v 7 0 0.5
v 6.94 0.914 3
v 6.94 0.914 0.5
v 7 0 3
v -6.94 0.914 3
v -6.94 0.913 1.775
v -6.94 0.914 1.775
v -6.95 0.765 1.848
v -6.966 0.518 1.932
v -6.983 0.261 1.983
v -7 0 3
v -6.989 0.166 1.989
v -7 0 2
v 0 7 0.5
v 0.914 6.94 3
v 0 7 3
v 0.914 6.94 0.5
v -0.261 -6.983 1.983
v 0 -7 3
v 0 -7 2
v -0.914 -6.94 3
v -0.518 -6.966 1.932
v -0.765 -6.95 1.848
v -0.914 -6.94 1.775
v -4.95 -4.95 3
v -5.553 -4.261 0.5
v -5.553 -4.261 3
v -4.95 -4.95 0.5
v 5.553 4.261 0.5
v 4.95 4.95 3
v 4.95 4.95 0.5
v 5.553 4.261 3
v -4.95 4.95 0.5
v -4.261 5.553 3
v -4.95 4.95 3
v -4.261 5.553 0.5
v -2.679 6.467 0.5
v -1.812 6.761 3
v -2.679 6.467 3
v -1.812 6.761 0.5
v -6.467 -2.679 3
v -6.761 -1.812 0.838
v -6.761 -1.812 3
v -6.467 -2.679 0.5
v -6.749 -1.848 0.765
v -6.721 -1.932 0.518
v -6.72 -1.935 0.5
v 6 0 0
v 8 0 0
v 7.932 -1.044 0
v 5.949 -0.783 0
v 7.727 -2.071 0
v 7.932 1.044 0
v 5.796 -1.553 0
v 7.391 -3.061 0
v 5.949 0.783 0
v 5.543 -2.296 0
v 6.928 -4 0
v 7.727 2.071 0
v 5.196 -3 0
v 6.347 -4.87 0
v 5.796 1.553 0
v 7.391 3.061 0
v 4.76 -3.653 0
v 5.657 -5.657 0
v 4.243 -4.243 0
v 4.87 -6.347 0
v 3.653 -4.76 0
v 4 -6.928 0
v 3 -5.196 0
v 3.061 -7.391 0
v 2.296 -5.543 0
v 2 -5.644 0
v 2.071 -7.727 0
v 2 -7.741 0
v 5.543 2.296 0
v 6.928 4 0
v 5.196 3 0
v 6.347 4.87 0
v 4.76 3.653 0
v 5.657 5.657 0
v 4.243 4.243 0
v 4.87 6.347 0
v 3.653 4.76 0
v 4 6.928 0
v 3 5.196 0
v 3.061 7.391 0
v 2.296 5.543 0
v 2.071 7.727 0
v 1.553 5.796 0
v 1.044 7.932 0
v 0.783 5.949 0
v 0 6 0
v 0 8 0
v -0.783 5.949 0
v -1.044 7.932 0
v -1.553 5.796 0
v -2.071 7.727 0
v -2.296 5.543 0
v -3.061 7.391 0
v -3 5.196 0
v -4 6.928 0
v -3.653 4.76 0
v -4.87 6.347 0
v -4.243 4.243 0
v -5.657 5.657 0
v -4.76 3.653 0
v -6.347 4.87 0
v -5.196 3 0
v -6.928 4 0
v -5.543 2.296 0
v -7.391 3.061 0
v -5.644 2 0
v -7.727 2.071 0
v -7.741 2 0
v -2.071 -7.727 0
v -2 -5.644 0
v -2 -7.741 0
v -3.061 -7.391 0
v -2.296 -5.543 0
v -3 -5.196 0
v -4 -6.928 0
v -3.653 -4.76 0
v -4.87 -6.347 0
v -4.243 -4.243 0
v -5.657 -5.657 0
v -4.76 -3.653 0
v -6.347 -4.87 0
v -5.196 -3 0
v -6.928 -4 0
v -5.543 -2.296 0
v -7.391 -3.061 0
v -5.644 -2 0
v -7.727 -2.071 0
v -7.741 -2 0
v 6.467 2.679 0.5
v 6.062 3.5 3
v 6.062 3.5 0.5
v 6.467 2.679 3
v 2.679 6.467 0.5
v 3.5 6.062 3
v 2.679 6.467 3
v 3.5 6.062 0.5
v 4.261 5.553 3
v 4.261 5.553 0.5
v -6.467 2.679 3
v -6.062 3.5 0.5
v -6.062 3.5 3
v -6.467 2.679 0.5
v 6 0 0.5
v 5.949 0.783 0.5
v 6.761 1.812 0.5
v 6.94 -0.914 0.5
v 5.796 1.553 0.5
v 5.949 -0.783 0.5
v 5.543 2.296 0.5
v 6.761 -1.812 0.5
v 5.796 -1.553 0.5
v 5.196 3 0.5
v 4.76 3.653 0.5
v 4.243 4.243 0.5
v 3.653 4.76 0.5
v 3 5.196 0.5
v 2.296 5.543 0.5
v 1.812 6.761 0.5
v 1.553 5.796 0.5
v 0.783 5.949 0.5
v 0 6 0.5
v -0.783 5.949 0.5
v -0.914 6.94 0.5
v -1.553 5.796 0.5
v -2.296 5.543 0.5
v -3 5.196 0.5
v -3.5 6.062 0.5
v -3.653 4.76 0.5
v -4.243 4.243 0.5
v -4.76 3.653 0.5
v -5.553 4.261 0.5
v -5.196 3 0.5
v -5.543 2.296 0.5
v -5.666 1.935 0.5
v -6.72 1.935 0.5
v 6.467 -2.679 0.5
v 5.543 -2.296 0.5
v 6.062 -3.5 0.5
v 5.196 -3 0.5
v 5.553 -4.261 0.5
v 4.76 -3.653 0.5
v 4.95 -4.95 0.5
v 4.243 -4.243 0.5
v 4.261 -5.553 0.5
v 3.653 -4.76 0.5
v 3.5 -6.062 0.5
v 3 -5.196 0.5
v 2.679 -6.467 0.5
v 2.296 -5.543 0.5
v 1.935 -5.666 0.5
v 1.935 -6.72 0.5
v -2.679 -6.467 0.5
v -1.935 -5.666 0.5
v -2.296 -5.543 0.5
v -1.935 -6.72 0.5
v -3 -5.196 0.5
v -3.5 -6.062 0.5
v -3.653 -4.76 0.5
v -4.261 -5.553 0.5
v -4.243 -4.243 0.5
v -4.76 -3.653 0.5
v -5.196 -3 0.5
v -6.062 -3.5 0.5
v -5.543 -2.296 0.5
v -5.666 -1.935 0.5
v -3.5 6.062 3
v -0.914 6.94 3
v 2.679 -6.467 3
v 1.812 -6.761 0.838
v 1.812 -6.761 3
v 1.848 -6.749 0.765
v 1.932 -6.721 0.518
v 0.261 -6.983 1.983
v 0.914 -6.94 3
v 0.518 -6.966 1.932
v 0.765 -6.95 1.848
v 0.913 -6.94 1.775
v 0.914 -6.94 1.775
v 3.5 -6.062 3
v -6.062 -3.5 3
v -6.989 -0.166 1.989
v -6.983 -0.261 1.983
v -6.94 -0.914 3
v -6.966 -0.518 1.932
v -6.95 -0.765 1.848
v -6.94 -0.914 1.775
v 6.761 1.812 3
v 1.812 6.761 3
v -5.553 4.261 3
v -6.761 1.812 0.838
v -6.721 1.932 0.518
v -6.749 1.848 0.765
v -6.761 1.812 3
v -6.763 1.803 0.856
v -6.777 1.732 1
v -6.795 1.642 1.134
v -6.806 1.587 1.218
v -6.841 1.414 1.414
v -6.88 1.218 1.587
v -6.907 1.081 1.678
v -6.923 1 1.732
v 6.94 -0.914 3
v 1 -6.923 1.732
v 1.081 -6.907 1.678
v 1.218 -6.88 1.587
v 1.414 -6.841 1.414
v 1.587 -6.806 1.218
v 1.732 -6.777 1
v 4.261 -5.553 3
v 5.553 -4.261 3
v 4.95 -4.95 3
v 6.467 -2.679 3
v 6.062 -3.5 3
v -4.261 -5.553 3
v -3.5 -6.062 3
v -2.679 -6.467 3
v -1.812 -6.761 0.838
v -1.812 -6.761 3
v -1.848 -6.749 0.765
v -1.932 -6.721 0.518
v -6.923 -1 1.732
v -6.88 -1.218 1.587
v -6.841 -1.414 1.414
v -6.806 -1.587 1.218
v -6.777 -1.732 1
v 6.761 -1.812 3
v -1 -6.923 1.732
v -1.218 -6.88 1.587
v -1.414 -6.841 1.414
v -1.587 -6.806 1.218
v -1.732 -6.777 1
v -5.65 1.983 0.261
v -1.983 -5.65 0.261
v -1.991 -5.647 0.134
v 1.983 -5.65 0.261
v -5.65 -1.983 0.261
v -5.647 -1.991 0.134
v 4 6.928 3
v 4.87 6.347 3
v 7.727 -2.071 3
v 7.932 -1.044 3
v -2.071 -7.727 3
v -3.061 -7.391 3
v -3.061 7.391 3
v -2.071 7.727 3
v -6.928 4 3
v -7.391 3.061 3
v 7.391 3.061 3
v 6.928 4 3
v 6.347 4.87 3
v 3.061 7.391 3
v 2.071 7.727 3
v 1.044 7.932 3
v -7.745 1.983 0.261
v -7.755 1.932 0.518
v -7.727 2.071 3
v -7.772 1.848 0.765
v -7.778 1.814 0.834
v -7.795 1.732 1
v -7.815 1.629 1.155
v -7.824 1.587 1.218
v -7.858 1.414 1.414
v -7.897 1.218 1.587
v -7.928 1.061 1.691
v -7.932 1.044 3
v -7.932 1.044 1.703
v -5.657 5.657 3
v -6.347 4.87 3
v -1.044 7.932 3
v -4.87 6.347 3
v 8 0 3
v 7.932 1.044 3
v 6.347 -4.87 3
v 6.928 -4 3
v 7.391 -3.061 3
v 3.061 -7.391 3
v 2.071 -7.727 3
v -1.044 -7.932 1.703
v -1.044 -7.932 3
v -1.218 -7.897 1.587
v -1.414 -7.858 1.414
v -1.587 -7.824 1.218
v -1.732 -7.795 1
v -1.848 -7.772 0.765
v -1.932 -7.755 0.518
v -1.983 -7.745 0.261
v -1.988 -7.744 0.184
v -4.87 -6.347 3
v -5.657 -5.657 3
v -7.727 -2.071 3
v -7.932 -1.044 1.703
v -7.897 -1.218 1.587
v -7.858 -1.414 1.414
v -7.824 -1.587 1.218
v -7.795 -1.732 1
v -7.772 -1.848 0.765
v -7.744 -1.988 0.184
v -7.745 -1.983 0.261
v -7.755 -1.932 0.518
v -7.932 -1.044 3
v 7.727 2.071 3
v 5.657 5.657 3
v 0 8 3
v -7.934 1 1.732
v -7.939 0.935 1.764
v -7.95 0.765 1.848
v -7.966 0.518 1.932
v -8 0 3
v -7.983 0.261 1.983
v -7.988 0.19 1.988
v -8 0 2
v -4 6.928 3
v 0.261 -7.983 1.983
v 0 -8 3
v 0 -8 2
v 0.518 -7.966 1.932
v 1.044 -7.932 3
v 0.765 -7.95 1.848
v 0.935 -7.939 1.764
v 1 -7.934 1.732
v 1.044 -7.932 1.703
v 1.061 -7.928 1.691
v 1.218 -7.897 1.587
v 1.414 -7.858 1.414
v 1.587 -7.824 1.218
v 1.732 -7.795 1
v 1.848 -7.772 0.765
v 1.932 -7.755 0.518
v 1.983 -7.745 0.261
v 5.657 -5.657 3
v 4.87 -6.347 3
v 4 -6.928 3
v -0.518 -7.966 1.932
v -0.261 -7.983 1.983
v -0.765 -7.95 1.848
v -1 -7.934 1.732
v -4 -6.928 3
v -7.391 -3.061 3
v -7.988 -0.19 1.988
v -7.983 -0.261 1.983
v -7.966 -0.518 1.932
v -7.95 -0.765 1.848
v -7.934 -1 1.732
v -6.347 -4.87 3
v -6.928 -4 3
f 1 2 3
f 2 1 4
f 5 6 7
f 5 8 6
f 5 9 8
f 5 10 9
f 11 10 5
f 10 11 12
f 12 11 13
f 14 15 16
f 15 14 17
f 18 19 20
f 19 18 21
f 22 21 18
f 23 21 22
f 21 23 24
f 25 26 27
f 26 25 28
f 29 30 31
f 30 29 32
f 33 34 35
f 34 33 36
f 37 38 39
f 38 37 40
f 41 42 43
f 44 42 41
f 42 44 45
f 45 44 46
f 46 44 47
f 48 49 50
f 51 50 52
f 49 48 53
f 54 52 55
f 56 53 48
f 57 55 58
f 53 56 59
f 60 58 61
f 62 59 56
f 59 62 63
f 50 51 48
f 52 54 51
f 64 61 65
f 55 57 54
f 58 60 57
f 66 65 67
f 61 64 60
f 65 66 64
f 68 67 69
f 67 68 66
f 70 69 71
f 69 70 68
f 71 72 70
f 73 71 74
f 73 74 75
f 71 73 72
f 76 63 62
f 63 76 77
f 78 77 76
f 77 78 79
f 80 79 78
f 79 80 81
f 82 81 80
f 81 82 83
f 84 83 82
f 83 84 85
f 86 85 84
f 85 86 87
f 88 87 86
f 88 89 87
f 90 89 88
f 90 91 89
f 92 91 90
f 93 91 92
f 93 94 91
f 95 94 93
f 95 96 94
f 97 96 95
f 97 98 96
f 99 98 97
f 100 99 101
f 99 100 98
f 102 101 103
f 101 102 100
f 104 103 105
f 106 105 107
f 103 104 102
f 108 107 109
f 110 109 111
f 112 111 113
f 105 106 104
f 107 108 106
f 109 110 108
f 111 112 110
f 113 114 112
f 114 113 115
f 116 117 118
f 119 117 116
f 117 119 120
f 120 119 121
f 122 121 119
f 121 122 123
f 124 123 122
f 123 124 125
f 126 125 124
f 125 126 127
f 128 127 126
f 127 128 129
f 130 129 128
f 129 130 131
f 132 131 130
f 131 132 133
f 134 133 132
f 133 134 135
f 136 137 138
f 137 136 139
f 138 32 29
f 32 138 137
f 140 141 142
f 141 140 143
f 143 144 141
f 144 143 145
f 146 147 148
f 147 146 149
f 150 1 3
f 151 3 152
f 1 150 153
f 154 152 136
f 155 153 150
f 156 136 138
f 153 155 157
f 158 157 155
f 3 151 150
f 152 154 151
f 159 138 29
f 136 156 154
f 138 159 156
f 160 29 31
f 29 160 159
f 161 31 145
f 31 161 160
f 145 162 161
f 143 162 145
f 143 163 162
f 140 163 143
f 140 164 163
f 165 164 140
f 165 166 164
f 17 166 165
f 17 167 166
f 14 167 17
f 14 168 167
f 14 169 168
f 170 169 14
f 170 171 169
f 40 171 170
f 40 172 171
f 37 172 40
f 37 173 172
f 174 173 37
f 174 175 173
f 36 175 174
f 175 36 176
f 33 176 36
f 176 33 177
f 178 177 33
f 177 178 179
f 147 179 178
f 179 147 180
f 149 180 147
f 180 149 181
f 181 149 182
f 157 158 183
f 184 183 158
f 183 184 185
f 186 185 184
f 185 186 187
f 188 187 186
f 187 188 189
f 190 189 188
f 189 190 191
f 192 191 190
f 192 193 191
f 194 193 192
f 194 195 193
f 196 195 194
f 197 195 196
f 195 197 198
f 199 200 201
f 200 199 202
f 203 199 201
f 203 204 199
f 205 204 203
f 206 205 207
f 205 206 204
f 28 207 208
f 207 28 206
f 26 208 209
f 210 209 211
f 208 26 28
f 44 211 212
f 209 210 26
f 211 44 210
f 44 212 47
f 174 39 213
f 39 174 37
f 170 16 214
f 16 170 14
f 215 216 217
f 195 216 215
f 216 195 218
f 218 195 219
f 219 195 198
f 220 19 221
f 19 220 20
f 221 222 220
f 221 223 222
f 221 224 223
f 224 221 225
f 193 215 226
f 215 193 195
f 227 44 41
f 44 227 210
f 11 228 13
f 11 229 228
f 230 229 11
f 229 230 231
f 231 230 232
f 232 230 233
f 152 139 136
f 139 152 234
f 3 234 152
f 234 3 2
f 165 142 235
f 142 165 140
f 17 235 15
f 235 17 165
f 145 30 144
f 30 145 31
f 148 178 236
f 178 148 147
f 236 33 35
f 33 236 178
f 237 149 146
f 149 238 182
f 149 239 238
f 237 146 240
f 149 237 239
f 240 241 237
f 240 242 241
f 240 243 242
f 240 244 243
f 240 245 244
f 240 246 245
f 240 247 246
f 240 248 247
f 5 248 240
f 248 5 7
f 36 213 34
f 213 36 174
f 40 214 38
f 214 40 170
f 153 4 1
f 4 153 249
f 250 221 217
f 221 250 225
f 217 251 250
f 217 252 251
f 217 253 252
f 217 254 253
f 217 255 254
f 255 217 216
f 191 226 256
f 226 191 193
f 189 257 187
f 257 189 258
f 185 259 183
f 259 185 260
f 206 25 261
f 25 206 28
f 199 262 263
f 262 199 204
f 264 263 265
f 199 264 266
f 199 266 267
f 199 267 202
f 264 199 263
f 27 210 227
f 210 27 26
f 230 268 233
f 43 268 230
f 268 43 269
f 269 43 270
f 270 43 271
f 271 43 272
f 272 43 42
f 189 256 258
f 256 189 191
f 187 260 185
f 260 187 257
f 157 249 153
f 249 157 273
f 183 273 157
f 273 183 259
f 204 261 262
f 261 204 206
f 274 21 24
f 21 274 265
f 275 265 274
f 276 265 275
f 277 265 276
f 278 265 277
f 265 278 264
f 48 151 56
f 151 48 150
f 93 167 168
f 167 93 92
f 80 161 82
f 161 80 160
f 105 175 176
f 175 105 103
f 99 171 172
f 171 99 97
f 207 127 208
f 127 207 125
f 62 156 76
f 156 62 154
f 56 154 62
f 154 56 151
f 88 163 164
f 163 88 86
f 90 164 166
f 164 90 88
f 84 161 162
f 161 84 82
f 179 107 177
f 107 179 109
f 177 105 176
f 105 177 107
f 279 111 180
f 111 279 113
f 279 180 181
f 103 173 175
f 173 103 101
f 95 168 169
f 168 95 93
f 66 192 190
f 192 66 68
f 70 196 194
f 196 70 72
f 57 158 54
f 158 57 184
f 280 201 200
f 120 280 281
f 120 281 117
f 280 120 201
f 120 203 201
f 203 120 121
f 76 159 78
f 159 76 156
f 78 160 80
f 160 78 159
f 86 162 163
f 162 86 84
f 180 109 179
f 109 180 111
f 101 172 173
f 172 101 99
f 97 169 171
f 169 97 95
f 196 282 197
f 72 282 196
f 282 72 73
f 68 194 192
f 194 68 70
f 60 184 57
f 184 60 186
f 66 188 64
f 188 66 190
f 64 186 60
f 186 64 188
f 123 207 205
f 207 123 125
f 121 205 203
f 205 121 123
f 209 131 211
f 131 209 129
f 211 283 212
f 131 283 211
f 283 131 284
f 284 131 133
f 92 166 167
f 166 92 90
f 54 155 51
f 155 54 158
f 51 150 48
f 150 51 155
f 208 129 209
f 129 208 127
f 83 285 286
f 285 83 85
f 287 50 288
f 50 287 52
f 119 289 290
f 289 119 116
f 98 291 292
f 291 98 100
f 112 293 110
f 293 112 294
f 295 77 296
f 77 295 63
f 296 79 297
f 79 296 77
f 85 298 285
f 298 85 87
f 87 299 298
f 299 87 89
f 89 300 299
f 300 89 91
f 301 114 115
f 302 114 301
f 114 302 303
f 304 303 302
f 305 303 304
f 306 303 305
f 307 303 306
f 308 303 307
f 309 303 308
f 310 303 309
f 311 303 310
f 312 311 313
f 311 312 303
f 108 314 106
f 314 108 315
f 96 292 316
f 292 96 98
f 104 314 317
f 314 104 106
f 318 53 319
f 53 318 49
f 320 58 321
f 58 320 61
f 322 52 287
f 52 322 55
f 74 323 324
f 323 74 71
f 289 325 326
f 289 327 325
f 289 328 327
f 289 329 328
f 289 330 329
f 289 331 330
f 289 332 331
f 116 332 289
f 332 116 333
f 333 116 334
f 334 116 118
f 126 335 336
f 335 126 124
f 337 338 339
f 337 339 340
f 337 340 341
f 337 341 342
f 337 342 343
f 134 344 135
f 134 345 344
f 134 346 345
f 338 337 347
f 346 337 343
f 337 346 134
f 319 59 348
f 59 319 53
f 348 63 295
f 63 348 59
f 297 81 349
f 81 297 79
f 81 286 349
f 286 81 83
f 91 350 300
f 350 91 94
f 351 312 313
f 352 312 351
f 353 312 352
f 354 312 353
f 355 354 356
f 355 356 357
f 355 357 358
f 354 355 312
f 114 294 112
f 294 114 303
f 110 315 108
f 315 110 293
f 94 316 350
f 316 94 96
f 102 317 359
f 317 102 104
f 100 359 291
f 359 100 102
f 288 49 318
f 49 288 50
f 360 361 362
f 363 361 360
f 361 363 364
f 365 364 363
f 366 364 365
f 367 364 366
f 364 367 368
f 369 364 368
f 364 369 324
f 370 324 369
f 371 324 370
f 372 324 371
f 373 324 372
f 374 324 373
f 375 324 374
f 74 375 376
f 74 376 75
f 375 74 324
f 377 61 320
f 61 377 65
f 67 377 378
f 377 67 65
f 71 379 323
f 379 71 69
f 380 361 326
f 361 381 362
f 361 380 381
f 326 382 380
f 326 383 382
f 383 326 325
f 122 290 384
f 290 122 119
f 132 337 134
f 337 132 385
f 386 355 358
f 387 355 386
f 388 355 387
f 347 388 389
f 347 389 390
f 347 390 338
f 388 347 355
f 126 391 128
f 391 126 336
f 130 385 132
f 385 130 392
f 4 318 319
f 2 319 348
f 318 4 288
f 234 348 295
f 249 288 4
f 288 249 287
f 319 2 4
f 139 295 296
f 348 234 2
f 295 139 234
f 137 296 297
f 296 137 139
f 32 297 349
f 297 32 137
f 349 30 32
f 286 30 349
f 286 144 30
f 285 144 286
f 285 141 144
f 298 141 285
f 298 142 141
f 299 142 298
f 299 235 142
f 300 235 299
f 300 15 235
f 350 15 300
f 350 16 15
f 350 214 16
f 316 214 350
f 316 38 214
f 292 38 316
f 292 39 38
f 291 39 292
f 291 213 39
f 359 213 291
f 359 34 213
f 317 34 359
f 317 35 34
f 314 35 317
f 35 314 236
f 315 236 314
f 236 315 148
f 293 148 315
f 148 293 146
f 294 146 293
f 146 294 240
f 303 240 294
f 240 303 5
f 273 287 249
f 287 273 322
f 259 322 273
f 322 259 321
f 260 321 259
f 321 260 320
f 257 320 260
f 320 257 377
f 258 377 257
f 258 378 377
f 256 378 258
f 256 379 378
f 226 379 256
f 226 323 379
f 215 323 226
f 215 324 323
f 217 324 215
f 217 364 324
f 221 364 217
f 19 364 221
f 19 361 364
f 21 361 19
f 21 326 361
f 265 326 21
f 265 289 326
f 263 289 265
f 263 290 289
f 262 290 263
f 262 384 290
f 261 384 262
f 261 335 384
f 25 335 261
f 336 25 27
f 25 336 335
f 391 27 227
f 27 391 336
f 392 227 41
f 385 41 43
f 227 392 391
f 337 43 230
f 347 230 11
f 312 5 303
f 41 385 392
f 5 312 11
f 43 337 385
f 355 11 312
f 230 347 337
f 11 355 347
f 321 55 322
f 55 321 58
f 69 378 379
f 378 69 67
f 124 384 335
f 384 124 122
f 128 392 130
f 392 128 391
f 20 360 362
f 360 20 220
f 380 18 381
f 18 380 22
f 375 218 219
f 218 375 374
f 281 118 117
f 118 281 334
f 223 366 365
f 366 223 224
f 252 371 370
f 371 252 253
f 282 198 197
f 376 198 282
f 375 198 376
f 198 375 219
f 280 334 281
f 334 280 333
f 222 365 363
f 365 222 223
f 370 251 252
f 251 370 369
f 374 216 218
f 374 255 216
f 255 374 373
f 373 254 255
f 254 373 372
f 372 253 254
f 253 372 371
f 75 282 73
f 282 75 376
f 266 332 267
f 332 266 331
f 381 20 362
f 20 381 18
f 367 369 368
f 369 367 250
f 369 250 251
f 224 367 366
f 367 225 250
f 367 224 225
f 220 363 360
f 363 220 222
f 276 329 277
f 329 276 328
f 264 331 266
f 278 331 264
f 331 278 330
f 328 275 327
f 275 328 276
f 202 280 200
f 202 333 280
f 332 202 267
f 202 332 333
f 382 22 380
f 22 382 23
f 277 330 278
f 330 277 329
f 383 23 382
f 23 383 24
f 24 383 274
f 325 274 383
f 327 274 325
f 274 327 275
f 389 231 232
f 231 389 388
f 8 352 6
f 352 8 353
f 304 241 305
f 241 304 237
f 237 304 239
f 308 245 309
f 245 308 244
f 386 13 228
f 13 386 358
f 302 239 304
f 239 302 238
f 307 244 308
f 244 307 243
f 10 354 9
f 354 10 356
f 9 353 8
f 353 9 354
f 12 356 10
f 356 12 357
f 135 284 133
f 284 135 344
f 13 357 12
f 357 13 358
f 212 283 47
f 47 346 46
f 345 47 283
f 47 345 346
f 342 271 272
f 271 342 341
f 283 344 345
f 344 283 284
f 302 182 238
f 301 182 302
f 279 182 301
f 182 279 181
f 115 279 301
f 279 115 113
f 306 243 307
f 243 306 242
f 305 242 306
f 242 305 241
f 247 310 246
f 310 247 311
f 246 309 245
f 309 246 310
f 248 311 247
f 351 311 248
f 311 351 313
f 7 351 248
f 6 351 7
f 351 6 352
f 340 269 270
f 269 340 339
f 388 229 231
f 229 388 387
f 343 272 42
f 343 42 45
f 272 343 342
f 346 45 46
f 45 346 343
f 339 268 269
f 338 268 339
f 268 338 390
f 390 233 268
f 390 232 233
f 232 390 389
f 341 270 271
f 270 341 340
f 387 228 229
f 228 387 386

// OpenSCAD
// file: ../build_environments.scad
// build_environments.scad: modules to build level sections
//

module pool(diameter=10.0, wall_height=2.0, step_width=3.0, connections=[])
{
    difference() {
        union() {
        difference() {
            cylinder(h=0.5,r1=diameter+step_width,r2=diameter+step_width,$fn=48);
            translate([0,0,-0.1])
                cylinder(h=0.7,r1=diameter,r2=diameter,$fn=48);
        }
        difference() {
            cylinder(h=wall_height,r1=diameter+step_width+1.0,r2=diameter+step_width+1.0,$fn=48);
            translate([0,0,-0.1])
                cylinder(h=wall_height+0.2,r1=diameter+step_width,r2=diameter+step_width,$fn=48);
        }
        }
    
        for (c = connections)
        {
            rotate([0,90,0]) {
                angle = atan2(c[1],c[0]);
                rotate([-angle,0,0]) {
                    cylinder(h=diameter+5.0,r1=c[2],r2=c[2],$fn=48);
                }
            }
        }
    }
}

module straight(length=10.0, width=2.0, dy1=0.0, dy2=0.0, dz=0.0)
{
    dims = [0, 0, 0, 0, 0, (dz/length)];
    matrix = [
        [ 1, dims[0], dims[1], 0 ],
        [ dims[2], 1, dims[4], 0 ],
        [ dims[5], dims[3], 1, 0 ],
        [ 0, 0, 0, 1 ]
    ];
    multmatrix(matrix)
    difference() {
        translate([dy1,0,0])
        union() {
            rotate([0,90,0]) {
                difference() {
                    cylinder(h=(length-dy1-dy2),r1=width+1.0,r2=width+1.0,$fn=24);
                    translate([0,0,-0.1])
                        cylinder(h=(length-dy1-dy2+0.2),r1=width,r2=width,$fn=24);
                }
                difference() {
                    cylinder(h=1.0,r1=width+2.0,r2=width+2.0,$fn=24);
                    translate([0,0,-0.1])
                        cylinder(h=1.2,r1=width,r2=width,$fn=24);
                }
                translate([0,0,(length-dy1-dy2)-1.0]) {
                    difference() {
                        cylinder(h=1.0,r1=width+2.0,r2=width+2.0,$fn=24);
                        translate([0,0,-0.1])
                            cylinder(h=1.2,r1=width,r2=width,$fn=24);
                    }
                }
            }
        }
        translate([0,0,-(2*width+4.0)/2])
            cube([3*length,3*length,2*width+4.0],center=true);
    }
}

module curve(p0=[0,0], center=[0,0], dir=1, angle=0.0, width=2.0)
{
    radius = sqrt((p0[0]-center[0])*(p0[0]-center[0]) + (p0[1]-center[1])*(p0[1]-center[1]));
    if (dir == 0) {
        difference() {
            rotate([0,0,-90])
            difference() {
                rotate_extrude(angle = angle, convexity = 10, $fn=32)
                    translate([radius, 0, 0])
                        circle(r = width+1.0,$fn=24);
                rotate([0,0,-1.0])
                    rotate_extrude(angle = angle+2.0, convexity = 10, $fn=32)
                        translate([radius, 0, 0])
                            circle(r = width,$fn=24);
            }
            translate([0,0,-(2*width+4.0)/2])
                cube([5*radius,5*radius,2*width+4.0],center=true);
        }
    }
    else {
        difference() {
            rotate([0,0,90])
            difference() {
                rotate_extrude(angle = -angle, convexity = 10, $fn=32)
                    translate([radius, 0, 0])
                        circle(r = width+1.0,$fn=24);
                rotate([0,0,1.0])
                    rotate_extrude(angle = -angle-2.0, convexity = 10, $fn=32)
                        translate([radius, 0, 0])
                            circle(r = width,$fn=24);
            }
            translate([0,0,-(2*width+4.0)/2])
                cube([5*radius,5*radius,2*width+4.0],center=true);
        }
    }

}

// test pool
//pool(diameter=12.0000, wall_height=3.0000, step_width=3.0000, connections=[[0.0000,-26.0000,2.0000], [23.6074,0.0000,2.0000]]);

// test straight, slope
//straight(length=26.0000, width=2.0000, dy1=11.8322, dy2=6.7082, dz=0.0000);
//straight(length=29.1549, width=12.0000, dy1=0.0000, dy2=0.0000, dz=-15.0000);

// test curve
//curve(p0=[23.6074, 0.0000], center=[23.6074, 5.0000], dir=0, angle=60.1011, width=2.0000);
//curve(p0=[33.6426, 12.4219], center=[37.9771, 9.9295], dir=1, angle=120.4627, width=2.0000);
// main file
use <../build_environments.scad>;
pool(diameter=6.0000, wall_height=3.0000, step_width=1.0000, connections=[[0.0000,-16.0000,2.0000], [-16.0000,0.0000,2.0000]]);
